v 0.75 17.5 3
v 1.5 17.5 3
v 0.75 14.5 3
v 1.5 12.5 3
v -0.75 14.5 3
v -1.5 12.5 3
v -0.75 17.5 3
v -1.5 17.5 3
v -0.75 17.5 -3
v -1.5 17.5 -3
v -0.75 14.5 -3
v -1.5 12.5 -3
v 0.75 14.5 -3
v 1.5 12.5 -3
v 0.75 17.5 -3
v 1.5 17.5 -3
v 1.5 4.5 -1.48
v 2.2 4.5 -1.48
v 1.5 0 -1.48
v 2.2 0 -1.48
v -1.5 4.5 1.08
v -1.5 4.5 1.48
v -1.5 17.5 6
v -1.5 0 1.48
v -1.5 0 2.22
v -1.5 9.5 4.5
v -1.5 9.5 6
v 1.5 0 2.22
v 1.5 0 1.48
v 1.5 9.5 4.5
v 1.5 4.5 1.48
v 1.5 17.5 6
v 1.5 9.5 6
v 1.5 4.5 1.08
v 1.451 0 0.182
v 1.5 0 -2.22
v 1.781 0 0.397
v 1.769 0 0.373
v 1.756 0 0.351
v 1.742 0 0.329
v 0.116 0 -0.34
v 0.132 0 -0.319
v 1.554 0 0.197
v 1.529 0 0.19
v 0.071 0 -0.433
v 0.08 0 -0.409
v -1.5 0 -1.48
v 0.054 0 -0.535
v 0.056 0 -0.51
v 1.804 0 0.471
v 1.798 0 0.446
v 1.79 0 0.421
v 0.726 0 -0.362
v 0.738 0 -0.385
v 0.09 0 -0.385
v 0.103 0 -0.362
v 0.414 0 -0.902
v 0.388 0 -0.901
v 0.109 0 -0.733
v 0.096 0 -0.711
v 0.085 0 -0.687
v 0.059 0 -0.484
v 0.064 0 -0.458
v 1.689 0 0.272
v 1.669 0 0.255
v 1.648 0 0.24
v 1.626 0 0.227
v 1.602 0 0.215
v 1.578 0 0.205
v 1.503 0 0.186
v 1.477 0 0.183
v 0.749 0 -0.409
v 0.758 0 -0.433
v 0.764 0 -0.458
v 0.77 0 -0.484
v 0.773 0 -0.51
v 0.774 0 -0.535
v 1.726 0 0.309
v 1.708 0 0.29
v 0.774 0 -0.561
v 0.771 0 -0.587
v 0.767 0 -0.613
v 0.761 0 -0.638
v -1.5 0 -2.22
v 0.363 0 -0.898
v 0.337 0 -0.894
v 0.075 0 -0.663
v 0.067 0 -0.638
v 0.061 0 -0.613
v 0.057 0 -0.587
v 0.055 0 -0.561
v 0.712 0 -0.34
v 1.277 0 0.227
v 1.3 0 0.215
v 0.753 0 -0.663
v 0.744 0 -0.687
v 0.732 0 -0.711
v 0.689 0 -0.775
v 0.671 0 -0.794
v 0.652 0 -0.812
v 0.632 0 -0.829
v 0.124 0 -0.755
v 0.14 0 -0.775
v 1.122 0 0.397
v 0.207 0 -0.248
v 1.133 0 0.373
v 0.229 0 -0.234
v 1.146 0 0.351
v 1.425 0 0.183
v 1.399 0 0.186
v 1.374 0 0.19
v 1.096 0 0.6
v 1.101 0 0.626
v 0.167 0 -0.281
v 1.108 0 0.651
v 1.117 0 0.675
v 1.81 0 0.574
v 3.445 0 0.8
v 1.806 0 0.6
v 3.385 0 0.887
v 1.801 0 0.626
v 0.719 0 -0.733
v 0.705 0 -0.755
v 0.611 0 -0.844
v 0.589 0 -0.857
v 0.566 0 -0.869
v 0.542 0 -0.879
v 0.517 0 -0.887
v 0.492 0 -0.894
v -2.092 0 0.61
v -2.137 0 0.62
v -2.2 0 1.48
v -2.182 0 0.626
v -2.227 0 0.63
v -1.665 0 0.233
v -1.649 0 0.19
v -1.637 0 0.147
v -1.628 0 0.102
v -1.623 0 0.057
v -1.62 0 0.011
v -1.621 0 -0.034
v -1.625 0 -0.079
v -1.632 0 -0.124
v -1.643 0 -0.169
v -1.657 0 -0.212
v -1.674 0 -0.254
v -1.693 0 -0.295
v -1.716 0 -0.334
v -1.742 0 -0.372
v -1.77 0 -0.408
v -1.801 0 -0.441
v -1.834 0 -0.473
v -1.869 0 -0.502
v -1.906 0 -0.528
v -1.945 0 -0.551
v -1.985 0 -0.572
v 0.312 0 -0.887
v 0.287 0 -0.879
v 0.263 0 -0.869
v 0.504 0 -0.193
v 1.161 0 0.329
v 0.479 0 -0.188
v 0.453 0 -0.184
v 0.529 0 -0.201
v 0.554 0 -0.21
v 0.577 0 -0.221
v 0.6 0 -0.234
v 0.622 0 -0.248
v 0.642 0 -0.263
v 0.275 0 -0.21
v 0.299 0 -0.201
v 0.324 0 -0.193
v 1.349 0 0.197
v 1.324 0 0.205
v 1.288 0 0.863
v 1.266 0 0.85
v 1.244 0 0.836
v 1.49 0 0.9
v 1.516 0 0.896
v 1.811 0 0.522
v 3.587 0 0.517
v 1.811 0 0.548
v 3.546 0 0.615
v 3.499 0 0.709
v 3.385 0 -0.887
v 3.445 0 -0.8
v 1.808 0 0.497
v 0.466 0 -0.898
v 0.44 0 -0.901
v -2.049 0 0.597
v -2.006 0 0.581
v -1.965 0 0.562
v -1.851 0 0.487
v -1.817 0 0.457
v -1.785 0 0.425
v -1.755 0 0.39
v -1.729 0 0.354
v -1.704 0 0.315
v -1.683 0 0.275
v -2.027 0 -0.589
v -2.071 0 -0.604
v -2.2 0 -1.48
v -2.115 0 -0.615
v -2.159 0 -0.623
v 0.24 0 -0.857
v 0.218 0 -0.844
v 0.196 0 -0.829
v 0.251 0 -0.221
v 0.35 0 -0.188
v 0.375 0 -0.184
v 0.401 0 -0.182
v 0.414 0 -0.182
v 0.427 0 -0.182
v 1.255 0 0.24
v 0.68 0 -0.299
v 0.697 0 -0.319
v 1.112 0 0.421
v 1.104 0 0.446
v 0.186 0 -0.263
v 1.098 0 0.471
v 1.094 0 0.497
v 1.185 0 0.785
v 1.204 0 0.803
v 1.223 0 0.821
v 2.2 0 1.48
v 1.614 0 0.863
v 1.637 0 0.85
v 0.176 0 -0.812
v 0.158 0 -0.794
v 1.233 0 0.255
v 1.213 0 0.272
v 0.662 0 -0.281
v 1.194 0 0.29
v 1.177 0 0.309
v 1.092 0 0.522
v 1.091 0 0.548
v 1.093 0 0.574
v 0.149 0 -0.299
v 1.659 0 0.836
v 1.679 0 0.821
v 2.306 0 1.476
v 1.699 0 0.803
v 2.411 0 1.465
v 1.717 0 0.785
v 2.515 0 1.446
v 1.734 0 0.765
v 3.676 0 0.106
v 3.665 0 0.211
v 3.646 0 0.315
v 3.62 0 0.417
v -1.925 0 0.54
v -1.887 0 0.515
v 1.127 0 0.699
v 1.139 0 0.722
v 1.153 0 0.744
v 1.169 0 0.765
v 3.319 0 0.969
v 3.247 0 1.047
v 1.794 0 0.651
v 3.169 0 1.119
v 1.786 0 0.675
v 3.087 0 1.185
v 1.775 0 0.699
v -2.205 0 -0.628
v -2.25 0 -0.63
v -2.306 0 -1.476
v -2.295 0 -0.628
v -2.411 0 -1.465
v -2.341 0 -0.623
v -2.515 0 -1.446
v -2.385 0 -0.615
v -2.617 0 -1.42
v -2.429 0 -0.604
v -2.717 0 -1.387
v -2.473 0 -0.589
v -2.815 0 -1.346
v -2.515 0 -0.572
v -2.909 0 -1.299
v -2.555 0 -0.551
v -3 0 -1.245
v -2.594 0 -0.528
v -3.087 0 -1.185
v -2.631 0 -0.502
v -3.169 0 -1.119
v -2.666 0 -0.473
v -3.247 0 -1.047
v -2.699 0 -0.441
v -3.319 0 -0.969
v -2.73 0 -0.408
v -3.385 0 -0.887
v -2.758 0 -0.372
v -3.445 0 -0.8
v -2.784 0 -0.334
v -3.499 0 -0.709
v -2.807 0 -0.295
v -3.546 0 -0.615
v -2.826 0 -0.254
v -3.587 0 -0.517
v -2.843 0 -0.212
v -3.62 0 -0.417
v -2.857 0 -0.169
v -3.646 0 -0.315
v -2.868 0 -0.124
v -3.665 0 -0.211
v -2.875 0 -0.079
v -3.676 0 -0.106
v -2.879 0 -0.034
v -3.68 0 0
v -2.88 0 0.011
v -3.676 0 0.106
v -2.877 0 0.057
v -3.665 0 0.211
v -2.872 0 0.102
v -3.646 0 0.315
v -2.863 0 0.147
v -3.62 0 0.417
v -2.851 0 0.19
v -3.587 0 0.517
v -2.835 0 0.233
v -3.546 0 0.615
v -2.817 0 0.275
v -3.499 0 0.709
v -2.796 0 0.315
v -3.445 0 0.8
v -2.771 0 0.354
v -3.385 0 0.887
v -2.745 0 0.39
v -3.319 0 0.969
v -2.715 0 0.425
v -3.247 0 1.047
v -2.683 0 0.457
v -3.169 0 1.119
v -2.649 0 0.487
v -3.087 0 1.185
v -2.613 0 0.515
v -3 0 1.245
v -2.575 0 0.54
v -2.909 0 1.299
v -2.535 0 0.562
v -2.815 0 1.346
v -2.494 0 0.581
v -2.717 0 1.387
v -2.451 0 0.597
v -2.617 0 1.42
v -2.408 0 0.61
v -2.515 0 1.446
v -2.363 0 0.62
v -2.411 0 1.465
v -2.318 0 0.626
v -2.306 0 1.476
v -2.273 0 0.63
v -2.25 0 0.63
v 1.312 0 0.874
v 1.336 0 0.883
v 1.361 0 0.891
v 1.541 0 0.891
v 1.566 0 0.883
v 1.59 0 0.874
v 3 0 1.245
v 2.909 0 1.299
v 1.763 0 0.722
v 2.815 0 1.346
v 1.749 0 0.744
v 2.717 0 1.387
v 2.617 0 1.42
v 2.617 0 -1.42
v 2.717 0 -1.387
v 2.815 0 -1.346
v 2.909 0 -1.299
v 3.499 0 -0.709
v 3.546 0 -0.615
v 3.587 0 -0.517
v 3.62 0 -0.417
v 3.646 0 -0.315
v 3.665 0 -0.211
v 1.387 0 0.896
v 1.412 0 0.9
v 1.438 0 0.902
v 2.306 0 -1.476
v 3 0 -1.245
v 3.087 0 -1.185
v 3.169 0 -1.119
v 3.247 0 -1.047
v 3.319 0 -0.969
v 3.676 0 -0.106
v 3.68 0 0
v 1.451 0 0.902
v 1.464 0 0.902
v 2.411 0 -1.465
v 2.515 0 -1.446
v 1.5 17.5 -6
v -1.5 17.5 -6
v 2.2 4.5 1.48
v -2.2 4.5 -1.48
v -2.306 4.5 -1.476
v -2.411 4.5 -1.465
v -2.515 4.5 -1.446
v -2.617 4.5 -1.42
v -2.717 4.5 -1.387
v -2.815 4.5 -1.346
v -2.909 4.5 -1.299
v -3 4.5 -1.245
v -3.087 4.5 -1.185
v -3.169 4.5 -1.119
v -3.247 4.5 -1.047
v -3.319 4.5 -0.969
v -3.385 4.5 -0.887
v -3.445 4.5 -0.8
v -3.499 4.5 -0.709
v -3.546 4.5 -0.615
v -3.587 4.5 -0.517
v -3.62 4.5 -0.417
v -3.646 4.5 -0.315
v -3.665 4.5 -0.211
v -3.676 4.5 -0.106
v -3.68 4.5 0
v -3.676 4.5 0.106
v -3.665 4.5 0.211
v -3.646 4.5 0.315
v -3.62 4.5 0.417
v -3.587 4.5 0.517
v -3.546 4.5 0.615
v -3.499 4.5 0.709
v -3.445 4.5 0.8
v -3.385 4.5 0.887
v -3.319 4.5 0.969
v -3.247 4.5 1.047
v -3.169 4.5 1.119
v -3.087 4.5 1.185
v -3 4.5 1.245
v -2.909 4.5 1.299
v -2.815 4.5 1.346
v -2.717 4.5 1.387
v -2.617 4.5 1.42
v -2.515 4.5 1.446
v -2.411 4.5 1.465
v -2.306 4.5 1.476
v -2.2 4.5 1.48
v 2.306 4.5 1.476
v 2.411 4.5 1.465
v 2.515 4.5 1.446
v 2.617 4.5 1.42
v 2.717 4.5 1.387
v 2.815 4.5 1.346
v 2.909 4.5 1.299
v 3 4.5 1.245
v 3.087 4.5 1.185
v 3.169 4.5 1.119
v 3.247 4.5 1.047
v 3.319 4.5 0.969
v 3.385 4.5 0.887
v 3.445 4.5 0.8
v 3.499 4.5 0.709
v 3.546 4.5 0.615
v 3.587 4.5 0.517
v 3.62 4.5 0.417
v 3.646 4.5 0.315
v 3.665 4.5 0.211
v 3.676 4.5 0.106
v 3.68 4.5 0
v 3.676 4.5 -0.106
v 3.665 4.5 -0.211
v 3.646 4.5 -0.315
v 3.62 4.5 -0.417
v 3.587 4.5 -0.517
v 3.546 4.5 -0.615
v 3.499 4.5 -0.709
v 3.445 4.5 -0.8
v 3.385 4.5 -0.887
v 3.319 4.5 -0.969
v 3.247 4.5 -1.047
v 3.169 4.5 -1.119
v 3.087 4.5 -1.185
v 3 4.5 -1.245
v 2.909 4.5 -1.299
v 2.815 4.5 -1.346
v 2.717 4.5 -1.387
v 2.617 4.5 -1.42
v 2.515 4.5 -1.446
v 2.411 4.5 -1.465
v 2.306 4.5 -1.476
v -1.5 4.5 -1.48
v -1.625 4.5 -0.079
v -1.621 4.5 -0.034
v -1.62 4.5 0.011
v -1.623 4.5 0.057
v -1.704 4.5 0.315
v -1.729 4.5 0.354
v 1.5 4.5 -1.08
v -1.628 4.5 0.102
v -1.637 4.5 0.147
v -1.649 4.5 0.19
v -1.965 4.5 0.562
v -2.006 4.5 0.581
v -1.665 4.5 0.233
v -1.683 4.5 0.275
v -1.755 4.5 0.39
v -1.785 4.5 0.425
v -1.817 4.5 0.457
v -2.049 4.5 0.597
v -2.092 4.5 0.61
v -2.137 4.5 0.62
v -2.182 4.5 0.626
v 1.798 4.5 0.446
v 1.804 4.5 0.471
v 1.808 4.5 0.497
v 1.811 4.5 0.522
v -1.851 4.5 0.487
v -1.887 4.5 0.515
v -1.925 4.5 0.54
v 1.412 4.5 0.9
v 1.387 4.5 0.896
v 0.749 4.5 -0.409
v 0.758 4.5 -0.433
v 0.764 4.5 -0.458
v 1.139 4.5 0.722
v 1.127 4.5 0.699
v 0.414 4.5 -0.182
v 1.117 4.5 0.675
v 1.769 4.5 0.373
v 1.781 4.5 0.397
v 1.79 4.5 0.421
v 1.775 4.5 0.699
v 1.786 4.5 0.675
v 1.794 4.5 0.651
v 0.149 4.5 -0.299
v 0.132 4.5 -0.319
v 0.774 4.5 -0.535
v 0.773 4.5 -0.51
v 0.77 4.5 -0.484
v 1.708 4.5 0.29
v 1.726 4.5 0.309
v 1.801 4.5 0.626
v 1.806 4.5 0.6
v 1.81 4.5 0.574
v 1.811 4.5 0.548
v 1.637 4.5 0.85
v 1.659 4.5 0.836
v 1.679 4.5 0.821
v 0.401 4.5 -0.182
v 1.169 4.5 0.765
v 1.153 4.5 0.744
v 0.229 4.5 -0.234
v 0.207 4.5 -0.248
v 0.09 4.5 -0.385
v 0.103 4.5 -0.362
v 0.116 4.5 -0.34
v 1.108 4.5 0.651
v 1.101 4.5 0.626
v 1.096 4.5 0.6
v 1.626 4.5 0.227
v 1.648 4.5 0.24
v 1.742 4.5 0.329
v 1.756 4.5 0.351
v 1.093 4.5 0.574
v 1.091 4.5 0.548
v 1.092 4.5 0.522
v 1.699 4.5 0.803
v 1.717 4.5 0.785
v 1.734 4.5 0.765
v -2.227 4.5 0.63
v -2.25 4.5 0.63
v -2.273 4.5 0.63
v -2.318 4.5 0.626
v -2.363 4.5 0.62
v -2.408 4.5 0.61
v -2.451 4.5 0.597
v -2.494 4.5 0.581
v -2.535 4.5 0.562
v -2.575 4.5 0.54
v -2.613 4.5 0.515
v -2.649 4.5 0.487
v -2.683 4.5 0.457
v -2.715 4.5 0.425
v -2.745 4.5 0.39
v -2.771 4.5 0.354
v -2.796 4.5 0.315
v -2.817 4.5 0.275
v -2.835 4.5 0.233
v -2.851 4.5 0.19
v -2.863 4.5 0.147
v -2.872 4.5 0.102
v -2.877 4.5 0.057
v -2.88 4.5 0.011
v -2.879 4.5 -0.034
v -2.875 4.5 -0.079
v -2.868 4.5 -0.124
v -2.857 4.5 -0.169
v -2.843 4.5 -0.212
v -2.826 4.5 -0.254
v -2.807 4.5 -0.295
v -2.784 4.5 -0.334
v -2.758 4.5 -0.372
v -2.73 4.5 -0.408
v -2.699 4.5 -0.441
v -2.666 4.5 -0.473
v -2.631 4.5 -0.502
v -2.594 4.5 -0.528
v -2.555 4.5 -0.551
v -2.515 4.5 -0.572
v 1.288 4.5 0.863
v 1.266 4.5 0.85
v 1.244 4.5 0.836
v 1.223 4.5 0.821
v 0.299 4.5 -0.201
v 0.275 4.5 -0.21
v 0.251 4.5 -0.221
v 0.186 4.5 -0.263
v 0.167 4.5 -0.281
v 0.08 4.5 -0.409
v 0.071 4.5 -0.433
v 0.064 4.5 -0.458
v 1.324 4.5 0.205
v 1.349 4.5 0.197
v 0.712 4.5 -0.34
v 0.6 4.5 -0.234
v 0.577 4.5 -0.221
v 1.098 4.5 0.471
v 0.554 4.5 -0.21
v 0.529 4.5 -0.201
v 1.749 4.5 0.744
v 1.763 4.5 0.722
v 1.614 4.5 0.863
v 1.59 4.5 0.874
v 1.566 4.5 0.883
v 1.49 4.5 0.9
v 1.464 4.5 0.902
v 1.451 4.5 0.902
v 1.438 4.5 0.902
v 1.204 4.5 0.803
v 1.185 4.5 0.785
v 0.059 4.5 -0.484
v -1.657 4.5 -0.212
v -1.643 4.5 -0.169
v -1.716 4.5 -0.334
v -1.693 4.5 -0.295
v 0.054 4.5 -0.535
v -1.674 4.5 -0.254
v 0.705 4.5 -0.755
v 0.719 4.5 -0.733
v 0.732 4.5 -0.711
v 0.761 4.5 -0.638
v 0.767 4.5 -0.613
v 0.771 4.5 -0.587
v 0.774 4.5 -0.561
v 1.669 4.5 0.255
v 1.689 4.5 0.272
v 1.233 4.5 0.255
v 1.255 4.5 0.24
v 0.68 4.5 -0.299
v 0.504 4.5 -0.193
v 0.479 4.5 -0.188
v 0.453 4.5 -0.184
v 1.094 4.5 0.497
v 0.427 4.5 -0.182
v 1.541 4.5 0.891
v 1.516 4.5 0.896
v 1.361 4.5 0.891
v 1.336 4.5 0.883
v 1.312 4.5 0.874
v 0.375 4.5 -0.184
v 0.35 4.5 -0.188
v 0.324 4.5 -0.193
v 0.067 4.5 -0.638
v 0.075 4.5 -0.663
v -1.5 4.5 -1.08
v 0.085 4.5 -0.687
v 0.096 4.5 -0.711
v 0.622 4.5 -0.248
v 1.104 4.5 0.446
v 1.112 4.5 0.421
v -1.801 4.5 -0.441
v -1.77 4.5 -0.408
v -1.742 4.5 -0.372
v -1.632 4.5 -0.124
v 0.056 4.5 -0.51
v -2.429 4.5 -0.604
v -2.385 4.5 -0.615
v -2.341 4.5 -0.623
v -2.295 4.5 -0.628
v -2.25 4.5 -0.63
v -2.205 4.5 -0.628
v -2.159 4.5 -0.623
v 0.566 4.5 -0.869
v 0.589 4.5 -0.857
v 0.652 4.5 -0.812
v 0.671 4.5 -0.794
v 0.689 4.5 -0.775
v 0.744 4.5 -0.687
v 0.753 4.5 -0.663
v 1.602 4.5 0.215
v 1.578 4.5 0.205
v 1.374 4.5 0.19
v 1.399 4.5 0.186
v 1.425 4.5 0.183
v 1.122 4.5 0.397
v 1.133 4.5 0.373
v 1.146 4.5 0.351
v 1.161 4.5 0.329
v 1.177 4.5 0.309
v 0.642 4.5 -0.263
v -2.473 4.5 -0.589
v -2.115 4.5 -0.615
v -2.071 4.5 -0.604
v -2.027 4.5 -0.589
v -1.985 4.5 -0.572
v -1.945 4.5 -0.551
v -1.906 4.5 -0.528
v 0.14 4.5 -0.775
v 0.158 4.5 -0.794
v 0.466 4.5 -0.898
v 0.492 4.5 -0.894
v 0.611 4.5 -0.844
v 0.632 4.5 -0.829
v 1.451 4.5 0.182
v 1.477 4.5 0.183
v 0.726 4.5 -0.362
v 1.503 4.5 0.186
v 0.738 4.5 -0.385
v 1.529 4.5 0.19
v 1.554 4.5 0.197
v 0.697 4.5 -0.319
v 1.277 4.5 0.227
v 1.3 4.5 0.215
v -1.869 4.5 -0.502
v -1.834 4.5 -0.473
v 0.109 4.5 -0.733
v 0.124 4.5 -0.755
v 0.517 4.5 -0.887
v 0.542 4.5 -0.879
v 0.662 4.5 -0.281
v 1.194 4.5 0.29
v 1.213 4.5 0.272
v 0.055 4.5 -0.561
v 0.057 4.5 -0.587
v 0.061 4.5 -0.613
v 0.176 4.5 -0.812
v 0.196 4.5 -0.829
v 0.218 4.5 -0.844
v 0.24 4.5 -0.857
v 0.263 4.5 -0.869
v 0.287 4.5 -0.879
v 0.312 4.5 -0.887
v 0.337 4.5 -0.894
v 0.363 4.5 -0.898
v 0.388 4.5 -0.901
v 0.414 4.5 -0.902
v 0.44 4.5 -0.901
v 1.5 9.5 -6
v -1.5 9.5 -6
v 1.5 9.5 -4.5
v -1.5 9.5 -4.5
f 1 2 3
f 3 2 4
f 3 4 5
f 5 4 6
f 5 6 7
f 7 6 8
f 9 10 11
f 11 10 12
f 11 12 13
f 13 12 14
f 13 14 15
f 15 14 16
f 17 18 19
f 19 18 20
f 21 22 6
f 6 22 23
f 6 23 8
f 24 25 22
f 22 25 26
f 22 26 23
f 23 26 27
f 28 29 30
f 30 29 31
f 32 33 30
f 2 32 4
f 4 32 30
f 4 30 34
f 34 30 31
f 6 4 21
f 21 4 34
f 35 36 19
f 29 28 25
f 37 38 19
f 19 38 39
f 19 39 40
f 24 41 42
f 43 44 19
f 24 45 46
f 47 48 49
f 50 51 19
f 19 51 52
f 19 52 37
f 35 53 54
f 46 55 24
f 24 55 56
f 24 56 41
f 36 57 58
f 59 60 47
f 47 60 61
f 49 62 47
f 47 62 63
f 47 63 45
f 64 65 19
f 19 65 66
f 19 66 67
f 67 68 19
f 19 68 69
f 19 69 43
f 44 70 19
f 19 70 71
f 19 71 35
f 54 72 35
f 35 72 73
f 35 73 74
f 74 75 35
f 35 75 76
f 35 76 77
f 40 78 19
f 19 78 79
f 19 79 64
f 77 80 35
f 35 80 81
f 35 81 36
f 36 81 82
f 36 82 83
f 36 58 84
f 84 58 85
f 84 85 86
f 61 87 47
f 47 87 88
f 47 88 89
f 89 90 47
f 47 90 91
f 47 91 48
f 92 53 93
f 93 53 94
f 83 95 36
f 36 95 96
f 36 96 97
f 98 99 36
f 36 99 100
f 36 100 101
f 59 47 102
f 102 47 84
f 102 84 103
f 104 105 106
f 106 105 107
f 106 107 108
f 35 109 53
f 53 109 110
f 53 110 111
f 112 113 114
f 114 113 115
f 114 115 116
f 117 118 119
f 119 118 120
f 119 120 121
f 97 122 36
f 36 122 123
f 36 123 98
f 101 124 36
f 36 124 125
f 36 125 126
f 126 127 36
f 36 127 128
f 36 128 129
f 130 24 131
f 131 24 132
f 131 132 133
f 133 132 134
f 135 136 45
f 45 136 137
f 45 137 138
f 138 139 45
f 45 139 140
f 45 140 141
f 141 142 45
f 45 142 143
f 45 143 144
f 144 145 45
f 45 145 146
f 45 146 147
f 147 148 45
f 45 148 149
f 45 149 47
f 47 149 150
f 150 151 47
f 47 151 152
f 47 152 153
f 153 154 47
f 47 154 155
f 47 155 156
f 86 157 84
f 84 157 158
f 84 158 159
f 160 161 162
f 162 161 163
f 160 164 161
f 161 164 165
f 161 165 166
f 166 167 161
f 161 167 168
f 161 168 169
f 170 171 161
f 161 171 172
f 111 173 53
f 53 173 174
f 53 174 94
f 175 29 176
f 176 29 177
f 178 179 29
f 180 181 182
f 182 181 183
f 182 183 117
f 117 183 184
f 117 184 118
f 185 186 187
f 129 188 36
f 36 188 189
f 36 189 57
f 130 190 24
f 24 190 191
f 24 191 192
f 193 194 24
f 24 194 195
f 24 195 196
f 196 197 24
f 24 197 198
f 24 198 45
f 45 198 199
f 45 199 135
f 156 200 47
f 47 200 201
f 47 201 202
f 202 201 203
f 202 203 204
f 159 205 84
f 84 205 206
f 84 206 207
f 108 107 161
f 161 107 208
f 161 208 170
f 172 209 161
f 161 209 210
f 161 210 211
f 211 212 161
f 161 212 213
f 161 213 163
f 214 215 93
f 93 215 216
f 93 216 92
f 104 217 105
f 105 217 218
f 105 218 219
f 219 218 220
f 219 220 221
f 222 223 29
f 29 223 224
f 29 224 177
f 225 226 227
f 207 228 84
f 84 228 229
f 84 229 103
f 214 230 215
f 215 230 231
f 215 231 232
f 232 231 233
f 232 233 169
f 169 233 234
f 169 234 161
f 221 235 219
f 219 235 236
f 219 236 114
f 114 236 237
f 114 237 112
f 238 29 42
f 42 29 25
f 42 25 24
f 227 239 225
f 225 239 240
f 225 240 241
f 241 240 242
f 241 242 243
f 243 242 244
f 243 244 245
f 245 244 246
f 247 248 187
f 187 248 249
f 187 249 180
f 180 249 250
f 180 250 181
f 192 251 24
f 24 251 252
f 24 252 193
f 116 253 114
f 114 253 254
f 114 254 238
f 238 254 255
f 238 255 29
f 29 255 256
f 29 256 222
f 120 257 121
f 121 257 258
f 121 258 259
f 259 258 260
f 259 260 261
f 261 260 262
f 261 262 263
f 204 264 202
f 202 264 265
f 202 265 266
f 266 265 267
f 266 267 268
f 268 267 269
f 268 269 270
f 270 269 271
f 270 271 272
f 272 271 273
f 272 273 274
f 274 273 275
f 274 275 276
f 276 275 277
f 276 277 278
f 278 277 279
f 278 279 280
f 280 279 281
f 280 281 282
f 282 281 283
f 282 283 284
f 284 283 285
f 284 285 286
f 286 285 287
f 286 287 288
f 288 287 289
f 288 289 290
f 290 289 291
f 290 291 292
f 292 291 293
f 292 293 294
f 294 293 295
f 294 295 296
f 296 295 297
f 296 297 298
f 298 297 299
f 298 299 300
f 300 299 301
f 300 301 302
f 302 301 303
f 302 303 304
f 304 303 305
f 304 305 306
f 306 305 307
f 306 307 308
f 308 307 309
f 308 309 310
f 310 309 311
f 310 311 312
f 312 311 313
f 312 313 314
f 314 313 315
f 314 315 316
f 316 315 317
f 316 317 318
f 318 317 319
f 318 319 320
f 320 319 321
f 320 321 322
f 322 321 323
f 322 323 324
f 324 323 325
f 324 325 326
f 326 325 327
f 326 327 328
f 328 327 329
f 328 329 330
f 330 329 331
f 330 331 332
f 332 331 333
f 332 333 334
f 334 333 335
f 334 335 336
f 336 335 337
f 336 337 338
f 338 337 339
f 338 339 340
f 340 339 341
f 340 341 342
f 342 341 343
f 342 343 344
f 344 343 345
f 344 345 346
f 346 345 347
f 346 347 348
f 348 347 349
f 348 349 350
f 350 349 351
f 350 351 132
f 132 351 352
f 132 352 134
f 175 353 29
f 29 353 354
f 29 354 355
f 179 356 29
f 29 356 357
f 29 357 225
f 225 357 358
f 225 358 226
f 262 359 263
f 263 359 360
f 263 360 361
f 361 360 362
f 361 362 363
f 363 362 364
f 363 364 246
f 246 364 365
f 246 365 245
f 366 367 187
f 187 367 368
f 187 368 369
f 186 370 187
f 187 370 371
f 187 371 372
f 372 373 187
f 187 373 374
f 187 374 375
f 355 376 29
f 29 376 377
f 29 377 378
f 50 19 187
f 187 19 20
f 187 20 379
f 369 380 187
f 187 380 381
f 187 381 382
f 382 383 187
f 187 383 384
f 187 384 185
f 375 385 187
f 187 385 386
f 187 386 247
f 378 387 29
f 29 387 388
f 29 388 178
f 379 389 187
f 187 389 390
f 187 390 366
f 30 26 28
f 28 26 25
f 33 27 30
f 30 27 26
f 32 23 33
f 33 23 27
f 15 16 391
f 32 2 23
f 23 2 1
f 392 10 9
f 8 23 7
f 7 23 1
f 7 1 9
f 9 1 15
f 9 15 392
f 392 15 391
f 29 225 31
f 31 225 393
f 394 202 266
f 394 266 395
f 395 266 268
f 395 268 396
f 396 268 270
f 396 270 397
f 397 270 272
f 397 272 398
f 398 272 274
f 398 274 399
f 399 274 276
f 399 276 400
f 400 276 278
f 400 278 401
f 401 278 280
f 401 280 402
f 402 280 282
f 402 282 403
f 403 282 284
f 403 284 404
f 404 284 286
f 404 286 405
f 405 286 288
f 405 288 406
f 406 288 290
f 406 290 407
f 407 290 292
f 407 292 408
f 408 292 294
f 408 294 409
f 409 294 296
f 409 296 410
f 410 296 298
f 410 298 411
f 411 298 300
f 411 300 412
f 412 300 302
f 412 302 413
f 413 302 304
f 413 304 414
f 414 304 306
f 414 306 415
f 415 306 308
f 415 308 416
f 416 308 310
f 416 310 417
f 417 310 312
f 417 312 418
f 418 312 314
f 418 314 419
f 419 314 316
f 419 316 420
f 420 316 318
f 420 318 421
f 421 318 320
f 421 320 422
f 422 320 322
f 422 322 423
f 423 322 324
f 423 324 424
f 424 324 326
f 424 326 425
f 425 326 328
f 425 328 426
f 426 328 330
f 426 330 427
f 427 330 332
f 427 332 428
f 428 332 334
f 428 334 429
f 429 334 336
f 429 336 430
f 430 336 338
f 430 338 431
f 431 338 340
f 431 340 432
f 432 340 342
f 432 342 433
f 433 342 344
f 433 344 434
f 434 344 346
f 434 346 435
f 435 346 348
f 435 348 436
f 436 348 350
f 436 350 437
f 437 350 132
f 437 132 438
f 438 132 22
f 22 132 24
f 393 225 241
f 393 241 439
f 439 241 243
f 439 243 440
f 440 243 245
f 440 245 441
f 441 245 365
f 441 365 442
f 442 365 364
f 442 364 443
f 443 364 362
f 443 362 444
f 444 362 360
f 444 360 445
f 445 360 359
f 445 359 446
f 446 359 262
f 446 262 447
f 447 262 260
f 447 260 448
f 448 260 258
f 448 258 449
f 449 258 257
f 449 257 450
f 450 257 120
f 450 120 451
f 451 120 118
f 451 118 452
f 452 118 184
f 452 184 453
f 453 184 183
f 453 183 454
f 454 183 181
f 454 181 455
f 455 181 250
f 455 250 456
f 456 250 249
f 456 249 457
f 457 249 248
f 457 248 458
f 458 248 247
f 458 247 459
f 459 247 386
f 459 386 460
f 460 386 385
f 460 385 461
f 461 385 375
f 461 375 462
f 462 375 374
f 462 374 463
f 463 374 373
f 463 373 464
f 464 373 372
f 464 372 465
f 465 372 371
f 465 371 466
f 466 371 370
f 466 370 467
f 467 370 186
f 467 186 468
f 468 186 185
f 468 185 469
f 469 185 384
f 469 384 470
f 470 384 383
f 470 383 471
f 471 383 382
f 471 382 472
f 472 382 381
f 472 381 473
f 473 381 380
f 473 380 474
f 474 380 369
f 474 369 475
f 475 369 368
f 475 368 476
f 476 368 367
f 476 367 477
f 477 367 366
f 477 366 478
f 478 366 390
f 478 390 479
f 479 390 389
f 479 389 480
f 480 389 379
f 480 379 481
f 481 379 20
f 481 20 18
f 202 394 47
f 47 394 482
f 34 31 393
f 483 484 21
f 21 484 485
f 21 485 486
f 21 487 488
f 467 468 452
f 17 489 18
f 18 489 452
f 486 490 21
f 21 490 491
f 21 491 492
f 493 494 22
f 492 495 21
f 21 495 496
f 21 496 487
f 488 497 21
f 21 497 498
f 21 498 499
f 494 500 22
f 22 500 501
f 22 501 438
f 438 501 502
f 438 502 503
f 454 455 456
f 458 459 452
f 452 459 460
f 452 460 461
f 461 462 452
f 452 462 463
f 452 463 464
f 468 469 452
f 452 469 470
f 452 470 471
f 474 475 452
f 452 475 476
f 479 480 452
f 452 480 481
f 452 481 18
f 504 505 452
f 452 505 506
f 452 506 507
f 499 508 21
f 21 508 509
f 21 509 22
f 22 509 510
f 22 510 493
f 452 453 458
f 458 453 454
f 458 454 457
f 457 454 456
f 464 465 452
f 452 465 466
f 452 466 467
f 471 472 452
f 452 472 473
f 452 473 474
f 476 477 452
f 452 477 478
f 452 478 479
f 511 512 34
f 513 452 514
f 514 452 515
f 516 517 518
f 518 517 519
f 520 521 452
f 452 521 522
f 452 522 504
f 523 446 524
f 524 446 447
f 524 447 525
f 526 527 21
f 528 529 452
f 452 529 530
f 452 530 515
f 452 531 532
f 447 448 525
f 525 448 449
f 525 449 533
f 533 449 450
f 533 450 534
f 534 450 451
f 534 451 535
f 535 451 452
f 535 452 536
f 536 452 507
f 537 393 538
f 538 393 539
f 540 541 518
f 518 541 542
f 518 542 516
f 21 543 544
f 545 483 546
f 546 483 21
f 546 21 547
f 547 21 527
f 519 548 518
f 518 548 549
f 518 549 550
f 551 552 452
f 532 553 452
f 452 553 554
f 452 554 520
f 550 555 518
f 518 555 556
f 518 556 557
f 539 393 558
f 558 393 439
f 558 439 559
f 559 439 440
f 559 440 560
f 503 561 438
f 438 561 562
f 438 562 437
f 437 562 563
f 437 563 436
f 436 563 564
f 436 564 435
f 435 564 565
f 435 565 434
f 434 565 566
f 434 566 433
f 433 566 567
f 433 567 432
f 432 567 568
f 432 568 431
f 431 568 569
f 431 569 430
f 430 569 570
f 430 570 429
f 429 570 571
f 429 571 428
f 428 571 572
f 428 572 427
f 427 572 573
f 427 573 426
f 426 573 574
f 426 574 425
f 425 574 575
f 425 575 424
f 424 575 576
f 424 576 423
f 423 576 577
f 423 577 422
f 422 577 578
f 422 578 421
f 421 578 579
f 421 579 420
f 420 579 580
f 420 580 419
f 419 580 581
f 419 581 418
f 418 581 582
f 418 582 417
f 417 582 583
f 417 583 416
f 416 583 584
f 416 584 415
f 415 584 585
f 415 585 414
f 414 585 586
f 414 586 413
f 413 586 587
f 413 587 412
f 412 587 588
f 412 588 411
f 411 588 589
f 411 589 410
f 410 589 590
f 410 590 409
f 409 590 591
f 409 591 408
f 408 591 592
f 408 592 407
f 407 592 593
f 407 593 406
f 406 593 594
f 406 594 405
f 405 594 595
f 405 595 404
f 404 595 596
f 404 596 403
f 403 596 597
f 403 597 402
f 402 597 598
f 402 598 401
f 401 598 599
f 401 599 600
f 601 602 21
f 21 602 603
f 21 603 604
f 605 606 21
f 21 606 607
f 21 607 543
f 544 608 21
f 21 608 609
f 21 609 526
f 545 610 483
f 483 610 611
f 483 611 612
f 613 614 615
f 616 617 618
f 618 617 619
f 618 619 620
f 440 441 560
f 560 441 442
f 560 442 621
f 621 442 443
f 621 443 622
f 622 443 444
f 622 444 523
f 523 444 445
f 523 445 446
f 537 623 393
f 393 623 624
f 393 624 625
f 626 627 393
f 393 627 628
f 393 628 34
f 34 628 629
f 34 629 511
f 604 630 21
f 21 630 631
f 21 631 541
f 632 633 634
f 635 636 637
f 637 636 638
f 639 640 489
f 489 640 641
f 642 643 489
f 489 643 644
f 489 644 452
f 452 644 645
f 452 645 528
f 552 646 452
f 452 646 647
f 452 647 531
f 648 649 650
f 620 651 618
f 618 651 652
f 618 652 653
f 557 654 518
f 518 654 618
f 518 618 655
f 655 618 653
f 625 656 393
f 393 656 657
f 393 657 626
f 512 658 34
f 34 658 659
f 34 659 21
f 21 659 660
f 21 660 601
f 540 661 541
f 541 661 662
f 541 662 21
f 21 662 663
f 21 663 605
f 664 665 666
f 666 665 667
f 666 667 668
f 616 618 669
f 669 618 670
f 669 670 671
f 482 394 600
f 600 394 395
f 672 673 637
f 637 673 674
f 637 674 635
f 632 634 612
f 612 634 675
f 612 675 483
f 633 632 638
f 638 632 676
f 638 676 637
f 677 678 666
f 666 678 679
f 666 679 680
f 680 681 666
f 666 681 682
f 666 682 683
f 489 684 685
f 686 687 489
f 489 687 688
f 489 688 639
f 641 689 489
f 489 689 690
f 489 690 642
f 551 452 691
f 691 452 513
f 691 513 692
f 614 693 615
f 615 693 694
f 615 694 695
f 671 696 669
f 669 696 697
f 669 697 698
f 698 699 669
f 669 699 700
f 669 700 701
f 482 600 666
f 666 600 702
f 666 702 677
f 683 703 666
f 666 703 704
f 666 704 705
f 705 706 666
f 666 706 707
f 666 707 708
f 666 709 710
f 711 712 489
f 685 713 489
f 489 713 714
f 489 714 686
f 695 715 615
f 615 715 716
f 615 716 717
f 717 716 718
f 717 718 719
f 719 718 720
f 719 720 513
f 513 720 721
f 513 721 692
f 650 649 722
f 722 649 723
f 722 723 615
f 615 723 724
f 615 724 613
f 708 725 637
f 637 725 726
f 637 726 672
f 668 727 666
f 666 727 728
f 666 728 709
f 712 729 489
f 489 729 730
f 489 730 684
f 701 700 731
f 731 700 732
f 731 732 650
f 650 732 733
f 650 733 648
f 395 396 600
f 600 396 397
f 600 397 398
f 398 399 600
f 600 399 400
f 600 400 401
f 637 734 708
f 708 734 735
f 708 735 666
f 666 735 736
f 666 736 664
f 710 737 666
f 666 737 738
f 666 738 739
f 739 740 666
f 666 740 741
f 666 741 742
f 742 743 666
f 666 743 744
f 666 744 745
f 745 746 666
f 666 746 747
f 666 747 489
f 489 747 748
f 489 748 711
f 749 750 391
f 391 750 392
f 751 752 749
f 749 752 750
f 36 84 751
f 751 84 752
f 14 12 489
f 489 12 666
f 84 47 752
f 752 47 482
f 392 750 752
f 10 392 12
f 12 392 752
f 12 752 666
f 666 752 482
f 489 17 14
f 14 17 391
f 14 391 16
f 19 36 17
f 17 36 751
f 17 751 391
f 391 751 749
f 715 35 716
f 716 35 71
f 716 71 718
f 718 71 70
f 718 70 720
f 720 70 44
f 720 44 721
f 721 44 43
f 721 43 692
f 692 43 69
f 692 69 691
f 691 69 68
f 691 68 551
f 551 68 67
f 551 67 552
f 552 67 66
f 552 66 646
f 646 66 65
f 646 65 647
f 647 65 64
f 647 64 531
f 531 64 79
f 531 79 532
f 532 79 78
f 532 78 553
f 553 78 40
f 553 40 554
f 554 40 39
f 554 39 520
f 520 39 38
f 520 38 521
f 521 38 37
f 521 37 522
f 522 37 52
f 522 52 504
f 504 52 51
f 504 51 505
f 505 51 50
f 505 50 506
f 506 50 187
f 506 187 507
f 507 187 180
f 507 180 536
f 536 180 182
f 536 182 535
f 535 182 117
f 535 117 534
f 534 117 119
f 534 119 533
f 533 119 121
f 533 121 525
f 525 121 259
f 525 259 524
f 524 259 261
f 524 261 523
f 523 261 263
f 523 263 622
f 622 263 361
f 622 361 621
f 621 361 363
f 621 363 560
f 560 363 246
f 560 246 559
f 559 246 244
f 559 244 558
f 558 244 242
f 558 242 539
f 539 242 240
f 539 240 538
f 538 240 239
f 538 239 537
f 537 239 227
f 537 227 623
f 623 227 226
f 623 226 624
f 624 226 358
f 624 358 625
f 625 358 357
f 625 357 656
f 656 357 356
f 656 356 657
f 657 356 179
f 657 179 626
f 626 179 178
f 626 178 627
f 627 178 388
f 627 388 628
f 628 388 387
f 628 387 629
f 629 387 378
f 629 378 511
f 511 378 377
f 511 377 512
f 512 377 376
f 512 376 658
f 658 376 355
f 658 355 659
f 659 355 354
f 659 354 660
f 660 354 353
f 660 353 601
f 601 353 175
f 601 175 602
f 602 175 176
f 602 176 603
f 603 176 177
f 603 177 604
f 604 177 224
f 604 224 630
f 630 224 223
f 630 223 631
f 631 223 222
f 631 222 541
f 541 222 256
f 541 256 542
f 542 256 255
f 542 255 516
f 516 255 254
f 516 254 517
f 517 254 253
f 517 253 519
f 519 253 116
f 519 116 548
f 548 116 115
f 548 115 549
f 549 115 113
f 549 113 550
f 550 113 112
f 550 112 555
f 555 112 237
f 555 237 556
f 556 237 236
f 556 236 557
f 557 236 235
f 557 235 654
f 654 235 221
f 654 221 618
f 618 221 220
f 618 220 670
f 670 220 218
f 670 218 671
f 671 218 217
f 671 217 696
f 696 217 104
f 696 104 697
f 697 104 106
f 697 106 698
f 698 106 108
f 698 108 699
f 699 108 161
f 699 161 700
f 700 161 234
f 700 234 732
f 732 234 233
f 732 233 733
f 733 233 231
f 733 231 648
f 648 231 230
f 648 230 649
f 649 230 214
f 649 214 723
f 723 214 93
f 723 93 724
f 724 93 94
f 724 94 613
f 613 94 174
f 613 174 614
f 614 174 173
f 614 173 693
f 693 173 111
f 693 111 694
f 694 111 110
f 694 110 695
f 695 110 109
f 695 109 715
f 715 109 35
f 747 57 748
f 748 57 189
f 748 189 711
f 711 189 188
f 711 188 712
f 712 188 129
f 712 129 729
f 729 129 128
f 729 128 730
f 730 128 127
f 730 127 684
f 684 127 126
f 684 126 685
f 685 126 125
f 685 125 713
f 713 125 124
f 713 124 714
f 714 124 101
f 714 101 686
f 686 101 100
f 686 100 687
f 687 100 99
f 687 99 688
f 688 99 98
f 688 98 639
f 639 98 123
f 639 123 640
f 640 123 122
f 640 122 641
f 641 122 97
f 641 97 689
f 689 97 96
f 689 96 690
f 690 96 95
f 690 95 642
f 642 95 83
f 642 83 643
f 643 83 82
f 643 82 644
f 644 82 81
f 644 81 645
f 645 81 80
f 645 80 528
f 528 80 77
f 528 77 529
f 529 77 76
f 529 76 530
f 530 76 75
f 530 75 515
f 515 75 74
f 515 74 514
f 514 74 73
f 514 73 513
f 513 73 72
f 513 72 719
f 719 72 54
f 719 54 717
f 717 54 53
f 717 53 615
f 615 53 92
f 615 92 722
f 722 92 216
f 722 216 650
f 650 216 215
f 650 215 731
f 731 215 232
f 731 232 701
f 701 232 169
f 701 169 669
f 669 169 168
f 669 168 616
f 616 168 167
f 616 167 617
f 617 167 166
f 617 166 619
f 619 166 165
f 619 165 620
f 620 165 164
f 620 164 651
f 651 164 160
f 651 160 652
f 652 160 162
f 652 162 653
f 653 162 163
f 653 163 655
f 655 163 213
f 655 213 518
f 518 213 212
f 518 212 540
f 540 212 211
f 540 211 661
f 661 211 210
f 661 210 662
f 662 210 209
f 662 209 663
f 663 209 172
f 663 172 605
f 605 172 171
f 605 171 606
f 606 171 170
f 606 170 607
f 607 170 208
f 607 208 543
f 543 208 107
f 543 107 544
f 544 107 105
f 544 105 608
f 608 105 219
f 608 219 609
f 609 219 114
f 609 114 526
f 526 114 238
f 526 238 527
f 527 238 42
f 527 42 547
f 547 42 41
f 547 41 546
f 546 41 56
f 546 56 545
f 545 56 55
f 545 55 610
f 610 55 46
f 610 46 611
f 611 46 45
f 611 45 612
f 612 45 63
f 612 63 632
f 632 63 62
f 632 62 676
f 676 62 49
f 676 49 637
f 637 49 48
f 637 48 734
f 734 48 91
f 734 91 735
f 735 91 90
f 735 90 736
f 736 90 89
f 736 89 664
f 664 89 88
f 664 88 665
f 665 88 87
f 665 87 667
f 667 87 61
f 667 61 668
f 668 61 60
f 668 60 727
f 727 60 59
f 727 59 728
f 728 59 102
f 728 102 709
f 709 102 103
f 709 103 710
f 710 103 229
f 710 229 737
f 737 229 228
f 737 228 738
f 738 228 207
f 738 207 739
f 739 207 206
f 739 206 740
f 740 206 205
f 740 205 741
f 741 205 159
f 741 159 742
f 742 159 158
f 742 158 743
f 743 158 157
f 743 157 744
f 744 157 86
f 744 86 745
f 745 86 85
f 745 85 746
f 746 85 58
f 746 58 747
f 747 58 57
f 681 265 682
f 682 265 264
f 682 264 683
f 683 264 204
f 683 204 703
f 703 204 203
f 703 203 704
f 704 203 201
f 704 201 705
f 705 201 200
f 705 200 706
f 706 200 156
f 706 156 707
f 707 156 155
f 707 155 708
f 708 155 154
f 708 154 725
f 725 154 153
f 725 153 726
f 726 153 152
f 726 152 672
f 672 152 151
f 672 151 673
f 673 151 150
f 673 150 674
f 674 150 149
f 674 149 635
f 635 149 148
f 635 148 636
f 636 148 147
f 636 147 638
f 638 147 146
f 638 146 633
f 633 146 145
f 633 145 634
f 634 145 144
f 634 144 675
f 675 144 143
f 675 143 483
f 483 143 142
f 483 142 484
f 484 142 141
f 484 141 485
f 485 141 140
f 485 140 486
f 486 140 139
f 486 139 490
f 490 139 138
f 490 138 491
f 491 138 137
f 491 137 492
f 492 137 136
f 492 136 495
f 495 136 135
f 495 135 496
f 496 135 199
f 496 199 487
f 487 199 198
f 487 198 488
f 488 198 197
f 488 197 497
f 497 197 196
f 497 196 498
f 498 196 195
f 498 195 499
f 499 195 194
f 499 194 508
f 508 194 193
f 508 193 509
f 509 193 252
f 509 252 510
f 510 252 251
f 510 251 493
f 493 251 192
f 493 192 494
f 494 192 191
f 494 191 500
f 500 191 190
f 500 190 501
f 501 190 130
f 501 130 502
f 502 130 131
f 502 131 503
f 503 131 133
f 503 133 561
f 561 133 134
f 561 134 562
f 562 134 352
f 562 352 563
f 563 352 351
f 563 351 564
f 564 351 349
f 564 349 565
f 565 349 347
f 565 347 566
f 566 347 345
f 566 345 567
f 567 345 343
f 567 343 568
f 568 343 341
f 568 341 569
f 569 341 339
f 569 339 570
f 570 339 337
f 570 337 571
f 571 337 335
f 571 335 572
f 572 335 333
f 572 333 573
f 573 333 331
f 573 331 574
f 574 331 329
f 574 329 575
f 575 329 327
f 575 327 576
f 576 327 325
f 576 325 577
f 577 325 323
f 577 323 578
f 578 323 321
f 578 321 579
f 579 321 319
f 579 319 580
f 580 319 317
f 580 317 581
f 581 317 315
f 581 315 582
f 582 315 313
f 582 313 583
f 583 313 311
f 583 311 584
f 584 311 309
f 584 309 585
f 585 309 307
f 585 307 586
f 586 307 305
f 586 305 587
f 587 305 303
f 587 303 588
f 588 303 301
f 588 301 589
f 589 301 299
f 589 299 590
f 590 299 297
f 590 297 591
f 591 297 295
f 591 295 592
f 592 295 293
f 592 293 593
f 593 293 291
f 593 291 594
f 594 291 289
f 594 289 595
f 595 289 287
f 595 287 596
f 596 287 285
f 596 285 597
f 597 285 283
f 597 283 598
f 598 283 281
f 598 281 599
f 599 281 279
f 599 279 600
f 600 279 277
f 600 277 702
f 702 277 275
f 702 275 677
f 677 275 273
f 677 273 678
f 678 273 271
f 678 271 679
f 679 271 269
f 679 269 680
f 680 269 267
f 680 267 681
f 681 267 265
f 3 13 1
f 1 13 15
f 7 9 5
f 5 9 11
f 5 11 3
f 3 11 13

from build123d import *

# Parameters (mm, degrees)
BOSS_EXTRUDE2_DEPTH = 1.5
BOSS_EXTRUDE3_DEPTH = 4.5
SKETCH1_3_R         = 0.63
SKETCH1_3_R_2       = 0.36
CUT_EXTRUDE2_DEPTH  = 19.862460073
BOSS_EXTRUDE4_REACH = 22.02
SKETCH3_W           = 1.5
SKETCH3_H           = 3


with BuildPart() as part:
    # Sketch2 → Boss-Extrude2 (new, symmetric)
    with BuildSketch(Plane(origin=(0, 0, 0), x_dir=(0, 0, -1), z_dir=(1, 0, 0))):
        Polygon((-6, 12.5), (-6, 9.5), (-4.5, 9.5), (-2.22, 0), (0, 0), (-3, 12.5), (-3, 17.5), (-6, 17.5), align=None)
    boss_extrude2 = extrude(amount=BOSS_EXTRUDE2_DEPTH, both=True)

    # Sketch1 → Boss-Extrude3 (add)
    with BuildSketch(Plane(origin=(0, 0, 0), x_dir=(1, 0, 0), z_dir=(0, 1, 0))):
        with BuildLine():
            Line((-2.2, 1.48), (2.2, 1.48))
            ThreePointArc((2.2, 1.48), (3.68, 0), (2.2, -1.48))
            Line((2.2, -1.48), (-2.2, -1.48))
            ThreePointArc((-2.2, -1.48), (-3.68, 0), (-2.2, 1.48))
        make_face()
    extrude(amount=BOSS_EXTRUDE3_DEPTH)

    # Mirror1: Boss-Extrude2 across plane
    add(boss_extrude2.mirror(Plane.XY))

    # Sketch1<3> → Cut-Extrude2 (cut, through all)
    with BuildSketch(Plane(origin=(0, 0, 0), x_dir=(1, 0, 0), z_dir=(0, 1, 0))):
        with Locations((-2.25, 0)):
            Circle(SKETCH1_3_R)
        with Locations((0.414349108, 0.541981393)):
            Circle(SKETCH1_3_R_2)
        with Locations((1.451183077, -0.541981393)):
            Circle(SKETCH1_3_R_2)
    extrude(amount=CUT_EXTRUDE2_DEPTH, mode=Mode.SUBTRACT)

    # Sketch3 → Boss-Extrude4 (add, up to next)
    with BuildSketch(Plane.XY.offset(-3), mode=Mode.PRIVATE) as boss_extrude4_sk1:
        with Locations((0, 16)):
            Rectangle(SKETCH3_W, SKETCH3_H)
    boss_extrude4_tool1 = extrude(boss_extrude4_sk1.sketch, amount=BOSS_EXTRUDE4_REACH, mode=Mode.PRIVATE) - part.part
    add(boss_extrude4_tool1.solids().sort_by_distance((0, 16, -3))[0])


solid = part.part
